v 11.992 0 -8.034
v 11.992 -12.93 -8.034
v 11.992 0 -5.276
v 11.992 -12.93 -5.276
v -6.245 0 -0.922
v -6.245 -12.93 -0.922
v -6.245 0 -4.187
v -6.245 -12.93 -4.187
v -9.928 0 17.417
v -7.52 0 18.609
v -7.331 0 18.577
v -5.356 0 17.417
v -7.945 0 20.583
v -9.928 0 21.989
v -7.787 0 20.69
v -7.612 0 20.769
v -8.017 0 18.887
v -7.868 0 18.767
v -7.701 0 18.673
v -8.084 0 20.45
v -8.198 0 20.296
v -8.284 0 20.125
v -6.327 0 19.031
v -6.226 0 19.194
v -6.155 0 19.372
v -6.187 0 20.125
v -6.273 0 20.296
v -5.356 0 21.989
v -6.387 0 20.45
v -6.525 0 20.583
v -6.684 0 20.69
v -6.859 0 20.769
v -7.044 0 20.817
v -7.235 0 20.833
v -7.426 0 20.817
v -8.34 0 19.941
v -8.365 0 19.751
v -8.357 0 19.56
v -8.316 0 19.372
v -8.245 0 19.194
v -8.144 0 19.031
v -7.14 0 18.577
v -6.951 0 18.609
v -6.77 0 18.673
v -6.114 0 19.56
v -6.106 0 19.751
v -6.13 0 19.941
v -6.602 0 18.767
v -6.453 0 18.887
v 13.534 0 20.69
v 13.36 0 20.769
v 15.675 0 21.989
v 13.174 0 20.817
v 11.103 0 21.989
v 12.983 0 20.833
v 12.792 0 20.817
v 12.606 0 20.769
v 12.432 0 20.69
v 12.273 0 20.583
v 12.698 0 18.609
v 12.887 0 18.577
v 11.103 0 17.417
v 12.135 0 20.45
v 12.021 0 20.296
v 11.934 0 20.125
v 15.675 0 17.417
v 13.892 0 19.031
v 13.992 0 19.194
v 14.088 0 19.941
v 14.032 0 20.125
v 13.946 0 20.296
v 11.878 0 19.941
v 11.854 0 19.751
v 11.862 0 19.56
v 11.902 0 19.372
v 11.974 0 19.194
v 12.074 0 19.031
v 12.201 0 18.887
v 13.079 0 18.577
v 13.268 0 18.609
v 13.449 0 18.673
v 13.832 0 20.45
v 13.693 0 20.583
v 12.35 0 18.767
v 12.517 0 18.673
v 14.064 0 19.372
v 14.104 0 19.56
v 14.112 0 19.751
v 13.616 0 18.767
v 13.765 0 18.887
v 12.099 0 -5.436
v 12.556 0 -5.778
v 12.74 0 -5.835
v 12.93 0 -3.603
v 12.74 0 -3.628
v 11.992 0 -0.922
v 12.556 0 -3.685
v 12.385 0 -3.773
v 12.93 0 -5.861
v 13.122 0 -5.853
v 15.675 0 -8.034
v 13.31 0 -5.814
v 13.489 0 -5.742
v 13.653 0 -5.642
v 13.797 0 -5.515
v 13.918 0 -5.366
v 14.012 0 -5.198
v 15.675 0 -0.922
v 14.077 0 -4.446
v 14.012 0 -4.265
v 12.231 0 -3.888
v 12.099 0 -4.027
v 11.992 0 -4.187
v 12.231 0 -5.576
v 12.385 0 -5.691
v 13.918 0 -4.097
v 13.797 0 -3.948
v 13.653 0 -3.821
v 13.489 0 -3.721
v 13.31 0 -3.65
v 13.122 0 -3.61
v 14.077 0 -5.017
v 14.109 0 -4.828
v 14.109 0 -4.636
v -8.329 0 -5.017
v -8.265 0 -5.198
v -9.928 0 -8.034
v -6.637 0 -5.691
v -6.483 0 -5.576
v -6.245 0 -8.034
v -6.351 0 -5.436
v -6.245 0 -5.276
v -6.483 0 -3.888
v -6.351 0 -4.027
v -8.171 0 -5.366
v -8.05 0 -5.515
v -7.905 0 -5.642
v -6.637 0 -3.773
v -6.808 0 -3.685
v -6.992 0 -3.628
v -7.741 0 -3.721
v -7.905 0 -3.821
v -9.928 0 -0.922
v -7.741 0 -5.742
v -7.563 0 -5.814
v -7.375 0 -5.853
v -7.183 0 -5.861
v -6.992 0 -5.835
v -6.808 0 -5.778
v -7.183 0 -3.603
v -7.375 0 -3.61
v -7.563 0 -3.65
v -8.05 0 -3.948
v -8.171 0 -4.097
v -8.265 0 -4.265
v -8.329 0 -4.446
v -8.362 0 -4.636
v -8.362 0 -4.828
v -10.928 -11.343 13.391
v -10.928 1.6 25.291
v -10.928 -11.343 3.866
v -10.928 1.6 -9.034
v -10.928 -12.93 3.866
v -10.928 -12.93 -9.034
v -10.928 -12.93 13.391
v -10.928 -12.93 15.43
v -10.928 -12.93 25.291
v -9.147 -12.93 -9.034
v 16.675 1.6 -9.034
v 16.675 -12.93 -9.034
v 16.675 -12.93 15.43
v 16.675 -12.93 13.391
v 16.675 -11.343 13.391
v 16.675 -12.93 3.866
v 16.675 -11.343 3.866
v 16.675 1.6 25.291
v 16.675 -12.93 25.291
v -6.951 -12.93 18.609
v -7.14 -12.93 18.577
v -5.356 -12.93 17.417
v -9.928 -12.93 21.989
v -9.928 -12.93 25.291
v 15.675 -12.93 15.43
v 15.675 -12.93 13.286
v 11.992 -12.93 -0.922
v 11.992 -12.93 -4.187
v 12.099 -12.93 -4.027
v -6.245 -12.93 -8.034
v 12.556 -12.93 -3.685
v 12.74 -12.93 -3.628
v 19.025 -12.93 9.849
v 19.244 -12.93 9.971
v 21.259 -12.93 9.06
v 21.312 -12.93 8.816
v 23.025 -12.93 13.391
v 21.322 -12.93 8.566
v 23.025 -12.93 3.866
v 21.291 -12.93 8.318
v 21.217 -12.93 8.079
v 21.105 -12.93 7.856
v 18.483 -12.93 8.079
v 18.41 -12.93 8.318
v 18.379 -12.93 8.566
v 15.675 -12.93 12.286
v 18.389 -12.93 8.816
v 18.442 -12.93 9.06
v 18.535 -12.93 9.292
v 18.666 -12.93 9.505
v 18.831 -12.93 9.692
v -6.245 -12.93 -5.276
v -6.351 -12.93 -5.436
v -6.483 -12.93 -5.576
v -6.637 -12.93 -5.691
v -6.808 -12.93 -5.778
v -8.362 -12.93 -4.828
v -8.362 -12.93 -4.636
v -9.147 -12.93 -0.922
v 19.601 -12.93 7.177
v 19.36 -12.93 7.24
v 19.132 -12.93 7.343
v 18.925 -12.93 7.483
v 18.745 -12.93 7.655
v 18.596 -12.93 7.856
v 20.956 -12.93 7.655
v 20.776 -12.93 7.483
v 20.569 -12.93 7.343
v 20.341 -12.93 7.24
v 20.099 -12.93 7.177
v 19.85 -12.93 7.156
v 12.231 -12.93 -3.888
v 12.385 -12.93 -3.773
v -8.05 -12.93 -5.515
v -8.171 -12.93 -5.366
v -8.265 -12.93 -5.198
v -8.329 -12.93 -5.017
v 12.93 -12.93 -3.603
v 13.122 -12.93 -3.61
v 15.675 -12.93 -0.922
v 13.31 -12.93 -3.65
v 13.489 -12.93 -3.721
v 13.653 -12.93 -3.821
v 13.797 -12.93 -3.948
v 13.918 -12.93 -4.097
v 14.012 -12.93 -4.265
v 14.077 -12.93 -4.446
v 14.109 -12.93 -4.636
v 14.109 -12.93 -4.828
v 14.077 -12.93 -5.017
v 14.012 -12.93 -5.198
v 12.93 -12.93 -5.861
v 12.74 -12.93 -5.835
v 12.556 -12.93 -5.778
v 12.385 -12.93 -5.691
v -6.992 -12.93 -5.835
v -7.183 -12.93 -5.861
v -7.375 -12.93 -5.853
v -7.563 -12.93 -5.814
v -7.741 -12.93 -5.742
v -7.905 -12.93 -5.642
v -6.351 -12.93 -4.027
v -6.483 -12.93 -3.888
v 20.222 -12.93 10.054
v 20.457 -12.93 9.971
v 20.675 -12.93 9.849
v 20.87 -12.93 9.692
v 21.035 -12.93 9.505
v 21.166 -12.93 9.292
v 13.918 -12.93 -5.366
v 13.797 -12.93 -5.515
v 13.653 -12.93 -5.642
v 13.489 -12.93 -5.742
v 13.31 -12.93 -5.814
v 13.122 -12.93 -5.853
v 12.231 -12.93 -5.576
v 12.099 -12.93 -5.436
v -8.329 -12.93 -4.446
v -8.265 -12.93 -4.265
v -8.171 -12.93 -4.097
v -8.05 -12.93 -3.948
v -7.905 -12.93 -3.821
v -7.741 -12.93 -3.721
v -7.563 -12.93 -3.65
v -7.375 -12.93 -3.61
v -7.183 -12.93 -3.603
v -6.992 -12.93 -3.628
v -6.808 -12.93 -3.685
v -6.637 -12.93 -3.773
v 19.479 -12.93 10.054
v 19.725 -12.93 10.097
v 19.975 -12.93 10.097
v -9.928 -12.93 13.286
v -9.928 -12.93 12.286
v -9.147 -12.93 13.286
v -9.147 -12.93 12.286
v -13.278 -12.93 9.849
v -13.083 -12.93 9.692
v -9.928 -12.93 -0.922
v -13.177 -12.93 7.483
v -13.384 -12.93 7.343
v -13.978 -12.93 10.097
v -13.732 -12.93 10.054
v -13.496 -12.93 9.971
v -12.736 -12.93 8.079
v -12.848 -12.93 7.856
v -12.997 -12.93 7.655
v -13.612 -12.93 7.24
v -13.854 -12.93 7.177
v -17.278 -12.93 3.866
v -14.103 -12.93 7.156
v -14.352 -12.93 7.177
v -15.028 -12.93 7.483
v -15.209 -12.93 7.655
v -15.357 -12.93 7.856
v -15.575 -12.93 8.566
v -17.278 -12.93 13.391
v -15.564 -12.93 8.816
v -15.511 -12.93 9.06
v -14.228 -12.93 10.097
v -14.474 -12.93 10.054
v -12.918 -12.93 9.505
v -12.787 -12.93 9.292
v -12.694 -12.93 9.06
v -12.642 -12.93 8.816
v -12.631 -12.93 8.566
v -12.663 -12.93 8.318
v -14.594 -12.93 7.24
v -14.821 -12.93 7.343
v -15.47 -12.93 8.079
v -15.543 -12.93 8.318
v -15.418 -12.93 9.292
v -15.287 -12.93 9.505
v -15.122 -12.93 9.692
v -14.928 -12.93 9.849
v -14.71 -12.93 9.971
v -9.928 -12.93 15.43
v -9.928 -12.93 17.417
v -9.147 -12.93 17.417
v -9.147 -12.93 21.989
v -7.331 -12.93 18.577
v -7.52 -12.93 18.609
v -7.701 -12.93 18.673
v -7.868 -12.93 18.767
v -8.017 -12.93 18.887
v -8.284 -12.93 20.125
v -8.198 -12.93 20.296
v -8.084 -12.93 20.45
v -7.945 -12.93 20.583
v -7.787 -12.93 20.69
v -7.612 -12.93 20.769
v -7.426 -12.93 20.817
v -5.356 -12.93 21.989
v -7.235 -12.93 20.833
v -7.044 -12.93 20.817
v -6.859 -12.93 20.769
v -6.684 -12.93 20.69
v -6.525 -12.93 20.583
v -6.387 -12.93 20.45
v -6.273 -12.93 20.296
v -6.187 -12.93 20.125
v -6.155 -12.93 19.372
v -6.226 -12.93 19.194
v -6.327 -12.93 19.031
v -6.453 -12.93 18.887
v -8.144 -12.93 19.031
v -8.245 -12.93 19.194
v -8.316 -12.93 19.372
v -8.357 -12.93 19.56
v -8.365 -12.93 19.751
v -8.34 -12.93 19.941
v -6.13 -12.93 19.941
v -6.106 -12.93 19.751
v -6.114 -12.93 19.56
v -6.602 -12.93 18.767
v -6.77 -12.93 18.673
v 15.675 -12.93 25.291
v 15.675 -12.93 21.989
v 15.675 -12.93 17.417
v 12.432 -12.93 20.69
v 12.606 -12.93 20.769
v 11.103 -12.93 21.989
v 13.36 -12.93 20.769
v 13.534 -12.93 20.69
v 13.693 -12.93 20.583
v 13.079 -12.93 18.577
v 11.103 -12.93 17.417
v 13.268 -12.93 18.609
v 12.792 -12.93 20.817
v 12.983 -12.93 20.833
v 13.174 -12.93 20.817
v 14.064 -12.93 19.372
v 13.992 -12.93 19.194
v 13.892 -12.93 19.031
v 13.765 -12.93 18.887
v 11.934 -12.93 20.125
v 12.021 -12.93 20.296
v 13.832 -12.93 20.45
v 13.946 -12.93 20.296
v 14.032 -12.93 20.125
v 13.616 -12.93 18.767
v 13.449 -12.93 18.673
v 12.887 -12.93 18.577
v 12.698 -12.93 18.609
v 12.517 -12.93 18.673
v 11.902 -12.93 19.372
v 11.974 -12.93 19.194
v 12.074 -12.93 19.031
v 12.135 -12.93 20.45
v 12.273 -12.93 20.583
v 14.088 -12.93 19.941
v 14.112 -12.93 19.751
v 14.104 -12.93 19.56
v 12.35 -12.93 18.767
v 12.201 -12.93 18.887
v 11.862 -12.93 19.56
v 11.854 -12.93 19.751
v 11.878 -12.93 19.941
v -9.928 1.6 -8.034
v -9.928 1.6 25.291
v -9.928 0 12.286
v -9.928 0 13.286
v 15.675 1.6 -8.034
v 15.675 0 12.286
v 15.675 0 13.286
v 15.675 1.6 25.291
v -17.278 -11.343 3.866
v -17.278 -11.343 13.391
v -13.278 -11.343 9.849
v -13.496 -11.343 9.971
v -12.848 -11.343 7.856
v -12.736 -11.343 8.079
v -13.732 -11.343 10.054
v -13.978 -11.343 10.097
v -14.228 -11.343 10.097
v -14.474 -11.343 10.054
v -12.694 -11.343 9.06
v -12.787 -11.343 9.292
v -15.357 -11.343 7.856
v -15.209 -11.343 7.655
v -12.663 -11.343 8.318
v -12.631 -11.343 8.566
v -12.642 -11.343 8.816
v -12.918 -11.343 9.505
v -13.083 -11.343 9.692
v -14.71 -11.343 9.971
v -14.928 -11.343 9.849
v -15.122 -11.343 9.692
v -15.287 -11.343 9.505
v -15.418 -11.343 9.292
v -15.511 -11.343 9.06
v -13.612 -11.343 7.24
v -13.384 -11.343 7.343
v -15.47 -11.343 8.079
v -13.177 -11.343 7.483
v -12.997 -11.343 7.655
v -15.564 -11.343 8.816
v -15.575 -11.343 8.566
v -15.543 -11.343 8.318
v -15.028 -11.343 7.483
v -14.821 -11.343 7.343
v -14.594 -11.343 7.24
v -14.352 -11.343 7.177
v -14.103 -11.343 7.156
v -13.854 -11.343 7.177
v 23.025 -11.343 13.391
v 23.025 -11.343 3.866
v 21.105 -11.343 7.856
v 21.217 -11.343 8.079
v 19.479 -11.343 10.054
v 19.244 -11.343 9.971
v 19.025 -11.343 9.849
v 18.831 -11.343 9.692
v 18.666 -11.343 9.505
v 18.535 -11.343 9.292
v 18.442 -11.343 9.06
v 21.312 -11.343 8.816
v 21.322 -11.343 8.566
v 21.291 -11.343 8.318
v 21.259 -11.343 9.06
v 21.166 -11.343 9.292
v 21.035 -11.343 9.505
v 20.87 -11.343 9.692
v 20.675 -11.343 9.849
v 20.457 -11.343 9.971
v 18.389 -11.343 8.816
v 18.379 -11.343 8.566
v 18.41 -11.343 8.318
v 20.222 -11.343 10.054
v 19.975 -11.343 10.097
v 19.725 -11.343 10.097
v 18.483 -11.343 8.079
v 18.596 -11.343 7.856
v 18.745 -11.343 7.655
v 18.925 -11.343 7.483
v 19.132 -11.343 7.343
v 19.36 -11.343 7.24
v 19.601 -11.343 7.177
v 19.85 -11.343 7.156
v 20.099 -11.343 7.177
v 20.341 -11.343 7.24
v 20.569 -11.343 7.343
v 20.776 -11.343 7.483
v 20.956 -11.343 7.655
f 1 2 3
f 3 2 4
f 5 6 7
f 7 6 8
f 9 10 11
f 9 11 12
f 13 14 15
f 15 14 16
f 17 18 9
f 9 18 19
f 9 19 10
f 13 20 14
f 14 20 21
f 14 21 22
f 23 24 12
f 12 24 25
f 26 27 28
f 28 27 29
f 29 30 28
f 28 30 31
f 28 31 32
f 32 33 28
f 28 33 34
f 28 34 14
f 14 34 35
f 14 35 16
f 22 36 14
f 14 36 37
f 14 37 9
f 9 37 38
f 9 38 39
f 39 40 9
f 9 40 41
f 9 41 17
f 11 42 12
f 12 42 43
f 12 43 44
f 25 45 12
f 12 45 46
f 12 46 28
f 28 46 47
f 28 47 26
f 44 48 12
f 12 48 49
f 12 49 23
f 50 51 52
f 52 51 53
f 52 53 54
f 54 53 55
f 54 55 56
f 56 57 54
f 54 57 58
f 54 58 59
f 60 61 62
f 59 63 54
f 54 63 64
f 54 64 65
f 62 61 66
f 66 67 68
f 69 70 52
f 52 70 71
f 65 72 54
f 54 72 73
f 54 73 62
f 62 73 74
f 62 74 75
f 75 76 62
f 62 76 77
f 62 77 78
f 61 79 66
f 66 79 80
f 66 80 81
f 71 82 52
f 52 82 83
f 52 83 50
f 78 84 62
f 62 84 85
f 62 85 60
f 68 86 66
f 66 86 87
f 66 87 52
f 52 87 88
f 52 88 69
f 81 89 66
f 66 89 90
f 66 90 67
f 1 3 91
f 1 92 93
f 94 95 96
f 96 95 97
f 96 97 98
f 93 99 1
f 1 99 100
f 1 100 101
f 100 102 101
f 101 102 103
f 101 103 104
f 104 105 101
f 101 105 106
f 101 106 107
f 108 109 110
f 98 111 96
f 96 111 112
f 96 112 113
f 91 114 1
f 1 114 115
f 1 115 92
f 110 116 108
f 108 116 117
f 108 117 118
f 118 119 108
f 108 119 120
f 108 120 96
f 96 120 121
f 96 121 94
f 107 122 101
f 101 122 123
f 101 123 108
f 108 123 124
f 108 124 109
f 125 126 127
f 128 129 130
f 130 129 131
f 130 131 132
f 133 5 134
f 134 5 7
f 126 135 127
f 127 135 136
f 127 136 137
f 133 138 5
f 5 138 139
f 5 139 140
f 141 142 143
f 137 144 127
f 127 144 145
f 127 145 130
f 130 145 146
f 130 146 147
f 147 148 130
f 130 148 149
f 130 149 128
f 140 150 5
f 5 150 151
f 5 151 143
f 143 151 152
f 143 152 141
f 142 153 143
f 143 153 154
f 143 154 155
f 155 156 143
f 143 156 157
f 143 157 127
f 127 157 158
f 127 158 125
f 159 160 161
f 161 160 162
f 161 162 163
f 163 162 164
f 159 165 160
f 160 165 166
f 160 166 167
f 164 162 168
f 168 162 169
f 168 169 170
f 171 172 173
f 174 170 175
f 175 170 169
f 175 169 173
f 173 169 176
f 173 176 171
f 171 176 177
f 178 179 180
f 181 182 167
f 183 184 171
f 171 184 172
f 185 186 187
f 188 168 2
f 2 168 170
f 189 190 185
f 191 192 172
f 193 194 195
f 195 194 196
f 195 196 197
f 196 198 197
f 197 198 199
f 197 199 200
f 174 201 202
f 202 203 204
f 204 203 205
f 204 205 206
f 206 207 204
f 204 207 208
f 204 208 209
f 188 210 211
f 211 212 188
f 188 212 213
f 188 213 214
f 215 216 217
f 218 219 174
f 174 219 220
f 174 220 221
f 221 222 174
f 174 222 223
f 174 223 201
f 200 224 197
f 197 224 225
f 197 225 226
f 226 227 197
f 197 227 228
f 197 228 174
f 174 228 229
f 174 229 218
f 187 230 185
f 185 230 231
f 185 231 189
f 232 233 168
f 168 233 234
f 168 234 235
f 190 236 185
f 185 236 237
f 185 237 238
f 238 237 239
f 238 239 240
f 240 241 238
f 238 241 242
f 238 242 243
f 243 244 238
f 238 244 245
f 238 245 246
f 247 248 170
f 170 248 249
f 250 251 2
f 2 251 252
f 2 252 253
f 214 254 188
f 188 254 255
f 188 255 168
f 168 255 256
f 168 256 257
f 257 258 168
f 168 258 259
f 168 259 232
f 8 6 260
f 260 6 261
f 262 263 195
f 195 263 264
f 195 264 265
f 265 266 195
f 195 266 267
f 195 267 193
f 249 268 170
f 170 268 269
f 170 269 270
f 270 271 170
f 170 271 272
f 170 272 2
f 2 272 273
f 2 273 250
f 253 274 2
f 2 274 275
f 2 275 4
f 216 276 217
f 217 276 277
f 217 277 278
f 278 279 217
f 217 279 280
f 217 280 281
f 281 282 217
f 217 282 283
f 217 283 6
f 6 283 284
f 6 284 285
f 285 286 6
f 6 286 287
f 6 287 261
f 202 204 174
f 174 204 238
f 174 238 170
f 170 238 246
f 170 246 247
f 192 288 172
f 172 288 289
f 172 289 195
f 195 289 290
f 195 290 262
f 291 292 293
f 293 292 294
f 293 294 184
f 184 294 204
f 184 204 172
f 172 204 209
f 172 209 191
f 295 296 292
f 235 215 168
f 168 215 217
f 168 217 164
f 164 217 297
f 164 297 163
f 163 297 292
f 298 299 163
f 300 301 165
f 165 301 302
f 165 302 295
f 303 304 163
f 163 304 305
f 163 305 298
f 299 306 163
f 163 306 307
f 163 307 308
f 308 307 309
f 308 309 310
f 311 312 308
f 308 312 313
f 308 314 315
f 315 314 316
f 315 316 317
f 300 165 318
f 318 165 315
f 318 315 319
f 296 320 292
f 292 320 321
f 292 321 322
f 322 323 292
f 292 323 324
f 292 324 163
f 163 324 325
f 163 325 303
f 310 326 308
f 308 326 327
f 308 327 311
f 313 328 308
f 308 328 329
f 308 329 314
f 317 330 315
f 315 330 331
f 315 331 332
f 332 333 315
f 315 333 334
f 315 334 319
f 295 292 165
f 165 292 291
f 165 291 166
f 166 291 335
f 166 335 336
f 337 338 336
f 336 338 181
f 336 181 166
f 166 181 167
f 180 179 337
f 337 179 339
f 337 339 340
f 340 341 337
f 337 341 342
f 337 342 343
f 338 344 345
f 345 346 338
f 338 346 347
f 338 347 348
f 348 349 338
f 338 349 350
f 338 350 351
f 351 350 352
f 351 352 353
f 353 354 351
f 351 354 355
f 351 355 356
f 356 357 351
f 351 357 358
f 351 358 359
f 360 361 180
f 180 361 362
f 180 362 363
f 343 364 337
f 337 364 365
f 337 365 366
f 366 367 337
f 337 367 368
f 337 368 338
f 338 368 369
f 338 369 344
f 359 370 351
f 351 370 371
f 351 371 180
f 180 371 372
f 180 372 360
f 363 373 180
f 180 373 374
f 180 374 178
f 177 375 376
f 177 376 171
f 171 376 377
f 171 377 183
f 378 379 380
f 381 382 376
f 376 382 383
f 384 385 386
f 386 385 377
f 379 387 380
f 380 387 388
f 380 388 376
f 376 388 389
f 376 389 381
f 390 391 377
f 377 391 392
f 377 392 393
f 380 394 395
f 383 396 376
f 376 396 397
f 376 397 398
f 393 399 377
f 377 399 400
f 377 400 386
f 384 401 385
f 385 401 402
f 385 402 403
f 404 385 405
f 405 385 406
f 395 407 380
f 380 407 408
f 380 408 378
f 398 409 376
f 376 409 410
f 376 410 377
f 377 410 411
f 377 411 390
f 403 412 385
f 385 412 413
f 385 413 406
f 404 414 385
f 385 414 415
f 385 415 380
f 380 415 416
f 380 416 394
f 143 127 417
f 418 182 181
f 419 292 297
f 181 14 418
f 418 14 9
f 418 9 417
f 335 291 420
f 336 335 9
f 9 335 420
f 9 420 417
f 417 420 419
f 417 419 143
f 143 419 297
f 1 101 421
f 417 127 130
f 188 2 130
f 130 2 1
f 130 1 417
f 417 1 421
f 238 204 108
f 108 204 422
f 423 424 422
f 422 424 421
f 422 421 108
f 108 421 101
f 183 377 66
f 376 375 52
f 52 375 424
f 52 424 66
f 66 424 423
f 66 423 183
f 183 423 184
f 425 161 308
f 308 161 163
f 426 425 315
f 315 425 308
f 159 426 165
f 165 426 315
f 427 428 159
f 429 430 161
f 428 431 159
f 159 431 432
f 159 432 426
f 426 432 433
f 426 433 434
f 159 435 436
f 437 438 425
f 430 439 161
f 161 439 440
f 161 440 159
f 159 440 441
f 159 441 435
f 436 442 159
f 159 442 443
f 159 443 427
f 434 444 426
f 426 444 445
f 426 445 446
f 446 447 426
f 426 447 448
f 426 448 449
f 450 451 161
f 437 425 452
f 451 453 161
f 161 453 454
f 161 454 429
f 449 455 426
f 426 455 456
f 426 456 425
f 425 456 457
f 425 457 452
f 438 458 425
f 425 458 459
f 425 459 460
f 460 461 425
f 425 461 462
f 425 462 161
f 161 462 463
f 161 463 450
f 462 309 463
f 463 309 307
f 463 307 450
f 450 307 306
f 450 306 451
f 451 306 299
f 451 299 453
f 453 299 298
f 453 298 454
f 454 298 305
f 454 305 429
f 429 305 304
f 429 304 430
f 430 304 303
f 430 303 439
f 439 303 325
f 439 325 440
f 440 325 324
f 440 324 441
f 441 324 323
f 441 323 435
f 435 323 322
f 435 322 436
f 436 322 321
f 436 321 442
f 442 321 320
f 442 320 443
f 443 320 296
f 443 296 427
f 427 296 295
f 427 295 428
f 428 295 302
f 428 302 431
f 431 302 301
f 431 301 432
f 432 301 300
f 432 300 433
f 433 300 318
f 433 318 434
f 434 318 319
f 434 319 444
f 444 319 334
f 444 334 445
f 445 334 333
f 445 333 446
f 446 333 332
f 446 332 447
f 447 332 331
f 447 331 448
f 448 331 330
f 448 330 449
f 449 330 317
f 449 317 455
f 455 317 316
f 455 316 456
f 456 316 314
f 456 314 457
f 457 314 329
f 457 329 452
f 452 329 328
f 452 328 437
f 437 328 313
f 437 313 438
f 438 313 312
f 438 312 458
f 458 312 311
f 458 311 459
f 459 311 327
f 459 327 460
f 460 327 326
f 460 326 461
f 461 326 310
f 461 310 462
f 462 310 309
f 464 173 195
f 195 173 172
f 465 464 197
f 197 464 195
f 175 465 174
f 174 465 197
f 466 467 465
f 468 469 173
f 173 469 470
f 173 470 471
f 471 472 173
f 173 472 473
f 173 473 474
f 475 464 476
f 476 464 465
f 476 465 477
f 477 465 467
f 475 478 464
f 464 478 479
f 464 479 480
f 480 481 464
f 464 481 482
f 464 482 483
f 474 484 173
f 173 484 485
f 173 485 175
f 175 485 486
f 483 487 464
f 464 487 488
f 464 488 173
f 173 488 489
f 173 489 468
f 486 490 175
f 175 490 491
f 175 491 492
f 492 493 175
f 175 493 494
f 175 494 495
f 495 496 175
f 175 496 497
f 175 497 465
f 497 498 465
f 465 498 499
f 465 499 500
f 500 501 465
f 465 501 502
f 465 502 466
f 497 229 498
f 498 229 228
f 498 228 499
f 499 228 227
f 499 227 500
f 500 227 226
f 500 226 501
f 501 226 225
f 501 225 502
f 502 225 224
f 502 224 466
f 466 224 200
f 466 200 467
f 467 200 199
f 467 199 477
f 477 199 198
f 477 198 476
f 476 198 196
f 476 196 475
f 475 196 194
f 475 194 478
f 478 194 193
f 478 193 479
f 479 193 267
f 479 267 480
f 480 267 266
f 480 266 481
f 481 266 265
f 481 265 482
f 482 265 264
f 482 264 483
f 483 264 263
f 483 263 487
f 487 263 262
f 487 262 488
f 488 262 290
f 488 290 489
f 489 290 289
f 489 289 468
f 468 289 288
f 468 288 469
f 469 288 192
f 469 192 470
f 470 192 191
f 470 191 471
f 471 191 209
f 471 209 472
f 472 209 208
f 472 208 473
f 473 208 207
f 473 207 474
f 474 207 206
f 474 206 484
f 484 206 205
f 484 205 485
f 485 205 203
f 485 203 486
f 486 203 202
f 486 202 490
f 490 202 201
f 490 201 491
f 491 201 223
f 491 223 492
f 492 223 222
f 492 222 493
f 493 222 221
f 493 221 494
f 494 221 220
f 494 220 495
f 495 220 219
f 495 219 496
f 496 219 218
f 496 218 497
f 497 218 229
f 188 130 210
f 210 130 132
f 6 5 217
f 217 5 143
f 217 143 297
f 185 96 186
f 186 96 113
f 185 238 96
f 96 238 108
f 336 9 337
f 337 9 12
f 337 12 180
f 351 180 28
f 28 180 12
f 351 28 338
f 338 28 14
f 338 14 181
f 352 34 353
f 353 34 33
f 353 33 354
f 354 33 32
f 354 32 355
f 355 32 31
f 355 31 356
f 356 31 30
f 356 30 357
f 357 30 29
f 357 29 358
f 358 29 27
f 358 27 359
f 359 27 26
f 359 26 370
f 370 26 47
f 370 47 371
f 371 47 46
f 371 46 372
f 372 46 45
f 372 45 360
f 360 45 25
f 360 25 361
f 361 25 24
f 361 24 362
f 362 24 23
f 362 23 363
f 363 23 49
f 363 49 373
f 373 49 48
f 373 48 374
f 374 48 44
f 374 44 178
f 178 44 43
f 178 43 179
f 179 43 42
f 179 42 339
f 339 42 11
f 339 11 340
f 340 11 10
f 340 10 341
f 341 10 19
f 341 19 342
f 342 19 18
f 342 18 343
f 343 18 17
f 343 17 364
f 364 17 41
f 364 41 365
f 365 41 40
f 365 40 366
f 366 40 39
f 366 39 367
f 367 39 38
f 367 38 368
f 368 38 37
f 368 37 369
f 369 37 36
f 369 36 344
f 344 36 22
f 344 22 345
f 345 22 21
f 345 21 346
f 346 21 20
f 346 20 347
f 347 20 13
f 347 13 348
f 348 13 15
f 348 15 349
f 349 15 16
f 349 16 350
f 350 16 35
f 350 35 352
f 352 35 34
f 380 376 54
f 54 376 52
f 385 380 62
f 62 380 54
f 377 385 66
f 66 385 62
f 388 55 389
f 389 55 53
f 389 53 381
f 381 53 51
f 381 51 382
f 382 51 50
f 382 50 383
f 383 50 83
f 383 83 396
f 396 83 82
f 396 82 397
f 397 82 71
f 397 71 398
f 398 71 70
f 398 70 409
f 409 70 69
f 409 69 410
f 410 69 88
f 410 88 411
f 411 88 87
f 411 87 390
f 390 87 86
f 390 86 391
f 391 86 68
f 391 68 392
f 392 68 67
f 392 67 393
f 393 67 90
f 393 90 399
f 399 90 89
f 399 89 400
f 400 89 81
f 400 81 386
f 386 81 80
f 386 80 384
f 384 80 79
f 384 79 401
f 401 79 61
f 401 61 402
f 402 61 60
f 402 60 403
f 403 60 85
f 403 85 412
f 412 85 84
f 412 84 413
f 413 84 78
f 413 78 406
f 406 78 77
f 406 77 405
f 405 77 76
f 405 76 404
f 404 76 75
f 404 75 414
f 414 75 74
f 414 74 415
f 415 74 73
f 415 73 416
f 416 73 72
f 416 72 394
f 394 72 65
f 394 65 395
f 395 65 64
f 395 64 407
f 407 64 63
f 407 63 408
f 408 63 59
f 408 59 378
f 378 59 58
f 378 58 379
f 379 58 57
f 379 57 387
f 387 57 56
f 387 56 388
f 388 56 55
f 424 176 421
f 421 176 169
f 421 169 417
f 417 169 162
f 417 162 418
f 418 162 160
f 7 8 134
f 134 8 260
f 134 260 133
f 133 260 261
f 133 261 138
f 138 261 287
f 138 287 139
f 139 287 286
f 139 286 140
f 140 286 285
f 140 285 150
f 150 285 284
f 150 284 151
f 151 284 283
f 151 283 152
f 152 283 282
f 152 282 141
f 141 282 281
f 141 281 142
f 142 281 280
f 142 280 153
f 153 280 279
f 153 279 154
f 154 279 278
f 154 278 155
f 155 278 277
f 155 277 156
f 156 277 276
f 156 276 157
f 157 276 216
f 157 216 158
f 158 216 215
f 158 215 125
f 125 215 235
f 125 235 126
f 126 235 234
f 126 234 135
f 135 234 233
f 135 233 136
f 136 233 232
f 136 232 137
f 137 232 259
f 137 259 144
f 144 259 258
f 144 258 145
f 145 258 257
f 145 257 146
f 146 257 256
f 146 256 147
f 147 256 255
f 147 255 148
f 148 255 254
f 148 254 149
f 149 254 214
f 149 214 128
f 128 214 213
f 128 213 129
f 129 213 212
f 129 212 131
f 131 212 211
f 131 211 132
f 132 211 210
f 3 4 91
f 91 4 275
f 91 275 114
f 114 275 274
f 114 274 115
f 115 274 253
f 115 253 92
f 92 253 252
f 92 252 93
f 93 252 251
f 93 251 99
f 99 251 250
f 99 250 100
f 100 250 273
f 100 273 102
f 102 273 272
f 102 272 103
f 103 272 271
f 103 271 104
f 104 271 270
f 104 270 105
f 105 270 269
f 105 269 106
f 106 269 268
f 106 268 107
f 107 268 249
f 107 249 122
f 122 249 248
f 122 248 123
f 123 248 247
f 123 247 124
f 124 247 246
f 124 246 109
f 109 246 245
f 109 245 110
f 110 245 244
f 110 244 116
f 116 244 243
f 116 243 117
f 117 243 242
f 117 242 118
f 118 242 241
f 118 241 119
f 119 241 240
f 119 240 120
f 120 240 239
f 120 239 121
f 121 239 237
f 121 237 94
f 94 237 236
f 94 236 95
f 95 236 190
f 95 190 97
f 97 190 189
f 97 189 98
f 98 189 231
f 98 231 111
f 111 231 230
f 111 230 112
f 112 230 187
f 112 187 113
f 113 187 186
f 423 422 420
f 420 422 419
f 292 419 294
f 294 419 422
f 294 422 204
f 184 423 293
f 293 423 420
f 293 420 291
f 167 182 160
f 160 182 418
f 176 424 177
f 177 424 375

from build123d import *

# Parameters (mm, degrees)
SKETCH1_W           = 27.6032
SKETCH1_H           = 35.3248
SKETCH1_W_2         = 25.6032
SKETCH1_H_2         = 33.3248
MAINCASING_DEPTH    = 12.93
SKETCH2_W           = 6.35
SKETCH2_H           = 9.525
SKETCH2_R           = 1.4732
MOUNTINGTABS_DEPTH  = 1.5875
SKETCH3_W           = 3.683
SKETCH3_H           = 7.112
SKETCH3_W_2         = 4.572
SKETCH3_H_2         = 4.572
SKETCH3_R           = 1.1303
BOSS_EXTRUDE3_DEPTH = 12.93
SKETCH4_W           = 27.6032
SKETCH4_H           = 35.3248
SKETCH4_W_2         = 25.6032
SKETCH4_H_2         = 33.3248
BOSS_EXTRUDE4_DEPTH = 1.6002
SKETCH5_R           = 1.1303
UPPERHOLES_DEPTH    = 38.848662667
SKETCH6_W           = 25.6032
SKETCH6_H           = 1
BOSS_EXTRUDE5_DEPTH = 12.93
SKETCH7_W           = 27.6032
SKETCH7_H           = 1
CUT_EXTRUDE2_DEPTH  = 38.848662667


with BuildPart() as part:
    # Sketch1 → mainCasing (new body)
    with BuildSketch(Plane(origin=(0, 0, 0), x_dir=(1, 0, 0), z_dir=(0, 1, 0))):
        with Locations((2.873828571, -8.628742857)):
            Rectangle(SKETCH1_W, SKETCH1_H)
        with Locations((2.873828571, -8.628742857)):
            Rectangle(SKETCH1_W_2, SKETCH1_H_2, mode=Mode.SUBTRACT)
    extrude(amount=-MAINCASING_DEPTH)

    # Sketch2 → mountingTabs (add)
    # profile 1 of 2: a face of its own
    with BuildSketch(Plane.XZ.offset(12.93)):
        with Locations((-14.102771429, 8.628742857)):
            Rectangle(SKETCH2_W, SKETCH2_H)
        with Locations(Location((-14.102771429, 8.628742857, 0), (0, 0, 270))):
            Circle(SKETCH2_R, mode=Mode.SUBTRACT)
    # profile 2 of 2: a face of its own
    with BuildSketch(Plane.XZ.offset(12.93)):
        with Locations((19.850428571, 8.628742857)):
            Rectangle(SKETCH2_W, SKETCH2_H)
        with Locations(Location((19.850428571, 8.628742857, 0), (0, 0, 270))):
            Circle(SKETCH2_R, mode=Mode.SUBTRACT)
    extrude(amount=-MOUNTINGTABS_DEPTH)

    # Sketch3 → Boss-Extrude3 (add)
    # profile 1 of 4: a face of its own
    with BuildSketch(Plane(origin=(0, 0, 0), x_dir=(1, 0, 0), z_dir=(0, 1, 0))):
        with Locations((-8.086271429, 4.477657143)):
            Rectangle(SKETCH3_W, SKETCH3_H)
    # profile 2 of 4: a face of its own
    with BuildSketch(Plane(origin=(0, 0, 0), x_dir=(1, 0, 0), z_dir=(0, 1, 0))):
        with Locations((13.833928571, 4.477657143)):
            Rectangle(SKETCH3_W, SKETCH3_H)
    # profile 3 of 4: a face of its own
    with BuildSketch(Plane(origin=(0, 0, 0), x_dir=(1, 0, 0), z_dir=(0, 1, 0))):
        with Locations((-7.641771429, -19.703142857)):
            Rectangle(SKETCH3_W_2, SKETCH3_H_2)
        with Locations(Location((-7.235371429, -19.703142857, 0), (0, 0, 270))):
            Circle(SKETCH3_R, mode=Mode.SUBTRACT)
    # profile 4 of 4: a face of its own
    with BuildSketch(Plane(origin=(0, 0, 0), x_dir=(1, 0, 0), z_dir=(0, 1, 0))):
        with Locations((13.389428571, -19.703142857)):
            Rectangle(SKETCH3_W_2, SKETCH3_H_2)
        with Locations(Location((12.983028571, -19.703142857, 0), (0, 0, 270))):
            Circle(SKETCH3_R, mode=Mode.SUBTRACT)
    extrude(amount=-BOSS_EXTRUDE3_DEPTH)

    # Sketch4 → Boss-Extrude4 (add)
    with BuildSketch(Plane(origin=(0, 0, 0), x_dir=(1, 0, 0), z_dir=(0, 1, 0))):
        with Locations((2.873828571, -8.628742857)):
            Rectangle(SKETCH4_W, SKETCH4_H)
        with Locations((2.873828571, -8.628742857)):
            Rectangle(SKETCH4_W_2, SKETCH4_H_2, mode=Mode.SUBTRACT)
    extrude(amount=BOSS_EXTRUDE4_DEPTH)

    # Sketch5 → upperHoles (cut, through all)
    with BuildSketch(Plane.XZ.offset(12.93)):
        with Locations((-7.235371429, -4.731657143)):
            Circle(SKETCH5_R)
        with Locations((12.983028571, -4.731657143)):
            Circle(SKETCH5_R)
    extrude(amount=-UPPERHOLES_DEPTH, mode=Mode.SUBTRACT)

    # Sketch6 → Boss-Extrude5 (add)
    with BuildSketch(Plane.XZ.offset(12.93)):
        with Locations((2.873828571, 12.786342857)):
            Rectangle(SKETCH6_W, SKETCH6_H)
    extrude(amount=-BOSS_EXTRUDE5_DEPTH)

    # Sketch7 → Cut-Extrude2 (cut, through all)
    with BuildSketch(Plane.XZ.offset(12.93)):
        with Locations((2.873828571, 25.791142857)):
            Rectangle(SKETCH7_W, SKETCH7_H)
    extrude(amount=-CUT_EXTRUDE2_DEPTH, mode=Mode.SUBTRACT)


solid = part.part
